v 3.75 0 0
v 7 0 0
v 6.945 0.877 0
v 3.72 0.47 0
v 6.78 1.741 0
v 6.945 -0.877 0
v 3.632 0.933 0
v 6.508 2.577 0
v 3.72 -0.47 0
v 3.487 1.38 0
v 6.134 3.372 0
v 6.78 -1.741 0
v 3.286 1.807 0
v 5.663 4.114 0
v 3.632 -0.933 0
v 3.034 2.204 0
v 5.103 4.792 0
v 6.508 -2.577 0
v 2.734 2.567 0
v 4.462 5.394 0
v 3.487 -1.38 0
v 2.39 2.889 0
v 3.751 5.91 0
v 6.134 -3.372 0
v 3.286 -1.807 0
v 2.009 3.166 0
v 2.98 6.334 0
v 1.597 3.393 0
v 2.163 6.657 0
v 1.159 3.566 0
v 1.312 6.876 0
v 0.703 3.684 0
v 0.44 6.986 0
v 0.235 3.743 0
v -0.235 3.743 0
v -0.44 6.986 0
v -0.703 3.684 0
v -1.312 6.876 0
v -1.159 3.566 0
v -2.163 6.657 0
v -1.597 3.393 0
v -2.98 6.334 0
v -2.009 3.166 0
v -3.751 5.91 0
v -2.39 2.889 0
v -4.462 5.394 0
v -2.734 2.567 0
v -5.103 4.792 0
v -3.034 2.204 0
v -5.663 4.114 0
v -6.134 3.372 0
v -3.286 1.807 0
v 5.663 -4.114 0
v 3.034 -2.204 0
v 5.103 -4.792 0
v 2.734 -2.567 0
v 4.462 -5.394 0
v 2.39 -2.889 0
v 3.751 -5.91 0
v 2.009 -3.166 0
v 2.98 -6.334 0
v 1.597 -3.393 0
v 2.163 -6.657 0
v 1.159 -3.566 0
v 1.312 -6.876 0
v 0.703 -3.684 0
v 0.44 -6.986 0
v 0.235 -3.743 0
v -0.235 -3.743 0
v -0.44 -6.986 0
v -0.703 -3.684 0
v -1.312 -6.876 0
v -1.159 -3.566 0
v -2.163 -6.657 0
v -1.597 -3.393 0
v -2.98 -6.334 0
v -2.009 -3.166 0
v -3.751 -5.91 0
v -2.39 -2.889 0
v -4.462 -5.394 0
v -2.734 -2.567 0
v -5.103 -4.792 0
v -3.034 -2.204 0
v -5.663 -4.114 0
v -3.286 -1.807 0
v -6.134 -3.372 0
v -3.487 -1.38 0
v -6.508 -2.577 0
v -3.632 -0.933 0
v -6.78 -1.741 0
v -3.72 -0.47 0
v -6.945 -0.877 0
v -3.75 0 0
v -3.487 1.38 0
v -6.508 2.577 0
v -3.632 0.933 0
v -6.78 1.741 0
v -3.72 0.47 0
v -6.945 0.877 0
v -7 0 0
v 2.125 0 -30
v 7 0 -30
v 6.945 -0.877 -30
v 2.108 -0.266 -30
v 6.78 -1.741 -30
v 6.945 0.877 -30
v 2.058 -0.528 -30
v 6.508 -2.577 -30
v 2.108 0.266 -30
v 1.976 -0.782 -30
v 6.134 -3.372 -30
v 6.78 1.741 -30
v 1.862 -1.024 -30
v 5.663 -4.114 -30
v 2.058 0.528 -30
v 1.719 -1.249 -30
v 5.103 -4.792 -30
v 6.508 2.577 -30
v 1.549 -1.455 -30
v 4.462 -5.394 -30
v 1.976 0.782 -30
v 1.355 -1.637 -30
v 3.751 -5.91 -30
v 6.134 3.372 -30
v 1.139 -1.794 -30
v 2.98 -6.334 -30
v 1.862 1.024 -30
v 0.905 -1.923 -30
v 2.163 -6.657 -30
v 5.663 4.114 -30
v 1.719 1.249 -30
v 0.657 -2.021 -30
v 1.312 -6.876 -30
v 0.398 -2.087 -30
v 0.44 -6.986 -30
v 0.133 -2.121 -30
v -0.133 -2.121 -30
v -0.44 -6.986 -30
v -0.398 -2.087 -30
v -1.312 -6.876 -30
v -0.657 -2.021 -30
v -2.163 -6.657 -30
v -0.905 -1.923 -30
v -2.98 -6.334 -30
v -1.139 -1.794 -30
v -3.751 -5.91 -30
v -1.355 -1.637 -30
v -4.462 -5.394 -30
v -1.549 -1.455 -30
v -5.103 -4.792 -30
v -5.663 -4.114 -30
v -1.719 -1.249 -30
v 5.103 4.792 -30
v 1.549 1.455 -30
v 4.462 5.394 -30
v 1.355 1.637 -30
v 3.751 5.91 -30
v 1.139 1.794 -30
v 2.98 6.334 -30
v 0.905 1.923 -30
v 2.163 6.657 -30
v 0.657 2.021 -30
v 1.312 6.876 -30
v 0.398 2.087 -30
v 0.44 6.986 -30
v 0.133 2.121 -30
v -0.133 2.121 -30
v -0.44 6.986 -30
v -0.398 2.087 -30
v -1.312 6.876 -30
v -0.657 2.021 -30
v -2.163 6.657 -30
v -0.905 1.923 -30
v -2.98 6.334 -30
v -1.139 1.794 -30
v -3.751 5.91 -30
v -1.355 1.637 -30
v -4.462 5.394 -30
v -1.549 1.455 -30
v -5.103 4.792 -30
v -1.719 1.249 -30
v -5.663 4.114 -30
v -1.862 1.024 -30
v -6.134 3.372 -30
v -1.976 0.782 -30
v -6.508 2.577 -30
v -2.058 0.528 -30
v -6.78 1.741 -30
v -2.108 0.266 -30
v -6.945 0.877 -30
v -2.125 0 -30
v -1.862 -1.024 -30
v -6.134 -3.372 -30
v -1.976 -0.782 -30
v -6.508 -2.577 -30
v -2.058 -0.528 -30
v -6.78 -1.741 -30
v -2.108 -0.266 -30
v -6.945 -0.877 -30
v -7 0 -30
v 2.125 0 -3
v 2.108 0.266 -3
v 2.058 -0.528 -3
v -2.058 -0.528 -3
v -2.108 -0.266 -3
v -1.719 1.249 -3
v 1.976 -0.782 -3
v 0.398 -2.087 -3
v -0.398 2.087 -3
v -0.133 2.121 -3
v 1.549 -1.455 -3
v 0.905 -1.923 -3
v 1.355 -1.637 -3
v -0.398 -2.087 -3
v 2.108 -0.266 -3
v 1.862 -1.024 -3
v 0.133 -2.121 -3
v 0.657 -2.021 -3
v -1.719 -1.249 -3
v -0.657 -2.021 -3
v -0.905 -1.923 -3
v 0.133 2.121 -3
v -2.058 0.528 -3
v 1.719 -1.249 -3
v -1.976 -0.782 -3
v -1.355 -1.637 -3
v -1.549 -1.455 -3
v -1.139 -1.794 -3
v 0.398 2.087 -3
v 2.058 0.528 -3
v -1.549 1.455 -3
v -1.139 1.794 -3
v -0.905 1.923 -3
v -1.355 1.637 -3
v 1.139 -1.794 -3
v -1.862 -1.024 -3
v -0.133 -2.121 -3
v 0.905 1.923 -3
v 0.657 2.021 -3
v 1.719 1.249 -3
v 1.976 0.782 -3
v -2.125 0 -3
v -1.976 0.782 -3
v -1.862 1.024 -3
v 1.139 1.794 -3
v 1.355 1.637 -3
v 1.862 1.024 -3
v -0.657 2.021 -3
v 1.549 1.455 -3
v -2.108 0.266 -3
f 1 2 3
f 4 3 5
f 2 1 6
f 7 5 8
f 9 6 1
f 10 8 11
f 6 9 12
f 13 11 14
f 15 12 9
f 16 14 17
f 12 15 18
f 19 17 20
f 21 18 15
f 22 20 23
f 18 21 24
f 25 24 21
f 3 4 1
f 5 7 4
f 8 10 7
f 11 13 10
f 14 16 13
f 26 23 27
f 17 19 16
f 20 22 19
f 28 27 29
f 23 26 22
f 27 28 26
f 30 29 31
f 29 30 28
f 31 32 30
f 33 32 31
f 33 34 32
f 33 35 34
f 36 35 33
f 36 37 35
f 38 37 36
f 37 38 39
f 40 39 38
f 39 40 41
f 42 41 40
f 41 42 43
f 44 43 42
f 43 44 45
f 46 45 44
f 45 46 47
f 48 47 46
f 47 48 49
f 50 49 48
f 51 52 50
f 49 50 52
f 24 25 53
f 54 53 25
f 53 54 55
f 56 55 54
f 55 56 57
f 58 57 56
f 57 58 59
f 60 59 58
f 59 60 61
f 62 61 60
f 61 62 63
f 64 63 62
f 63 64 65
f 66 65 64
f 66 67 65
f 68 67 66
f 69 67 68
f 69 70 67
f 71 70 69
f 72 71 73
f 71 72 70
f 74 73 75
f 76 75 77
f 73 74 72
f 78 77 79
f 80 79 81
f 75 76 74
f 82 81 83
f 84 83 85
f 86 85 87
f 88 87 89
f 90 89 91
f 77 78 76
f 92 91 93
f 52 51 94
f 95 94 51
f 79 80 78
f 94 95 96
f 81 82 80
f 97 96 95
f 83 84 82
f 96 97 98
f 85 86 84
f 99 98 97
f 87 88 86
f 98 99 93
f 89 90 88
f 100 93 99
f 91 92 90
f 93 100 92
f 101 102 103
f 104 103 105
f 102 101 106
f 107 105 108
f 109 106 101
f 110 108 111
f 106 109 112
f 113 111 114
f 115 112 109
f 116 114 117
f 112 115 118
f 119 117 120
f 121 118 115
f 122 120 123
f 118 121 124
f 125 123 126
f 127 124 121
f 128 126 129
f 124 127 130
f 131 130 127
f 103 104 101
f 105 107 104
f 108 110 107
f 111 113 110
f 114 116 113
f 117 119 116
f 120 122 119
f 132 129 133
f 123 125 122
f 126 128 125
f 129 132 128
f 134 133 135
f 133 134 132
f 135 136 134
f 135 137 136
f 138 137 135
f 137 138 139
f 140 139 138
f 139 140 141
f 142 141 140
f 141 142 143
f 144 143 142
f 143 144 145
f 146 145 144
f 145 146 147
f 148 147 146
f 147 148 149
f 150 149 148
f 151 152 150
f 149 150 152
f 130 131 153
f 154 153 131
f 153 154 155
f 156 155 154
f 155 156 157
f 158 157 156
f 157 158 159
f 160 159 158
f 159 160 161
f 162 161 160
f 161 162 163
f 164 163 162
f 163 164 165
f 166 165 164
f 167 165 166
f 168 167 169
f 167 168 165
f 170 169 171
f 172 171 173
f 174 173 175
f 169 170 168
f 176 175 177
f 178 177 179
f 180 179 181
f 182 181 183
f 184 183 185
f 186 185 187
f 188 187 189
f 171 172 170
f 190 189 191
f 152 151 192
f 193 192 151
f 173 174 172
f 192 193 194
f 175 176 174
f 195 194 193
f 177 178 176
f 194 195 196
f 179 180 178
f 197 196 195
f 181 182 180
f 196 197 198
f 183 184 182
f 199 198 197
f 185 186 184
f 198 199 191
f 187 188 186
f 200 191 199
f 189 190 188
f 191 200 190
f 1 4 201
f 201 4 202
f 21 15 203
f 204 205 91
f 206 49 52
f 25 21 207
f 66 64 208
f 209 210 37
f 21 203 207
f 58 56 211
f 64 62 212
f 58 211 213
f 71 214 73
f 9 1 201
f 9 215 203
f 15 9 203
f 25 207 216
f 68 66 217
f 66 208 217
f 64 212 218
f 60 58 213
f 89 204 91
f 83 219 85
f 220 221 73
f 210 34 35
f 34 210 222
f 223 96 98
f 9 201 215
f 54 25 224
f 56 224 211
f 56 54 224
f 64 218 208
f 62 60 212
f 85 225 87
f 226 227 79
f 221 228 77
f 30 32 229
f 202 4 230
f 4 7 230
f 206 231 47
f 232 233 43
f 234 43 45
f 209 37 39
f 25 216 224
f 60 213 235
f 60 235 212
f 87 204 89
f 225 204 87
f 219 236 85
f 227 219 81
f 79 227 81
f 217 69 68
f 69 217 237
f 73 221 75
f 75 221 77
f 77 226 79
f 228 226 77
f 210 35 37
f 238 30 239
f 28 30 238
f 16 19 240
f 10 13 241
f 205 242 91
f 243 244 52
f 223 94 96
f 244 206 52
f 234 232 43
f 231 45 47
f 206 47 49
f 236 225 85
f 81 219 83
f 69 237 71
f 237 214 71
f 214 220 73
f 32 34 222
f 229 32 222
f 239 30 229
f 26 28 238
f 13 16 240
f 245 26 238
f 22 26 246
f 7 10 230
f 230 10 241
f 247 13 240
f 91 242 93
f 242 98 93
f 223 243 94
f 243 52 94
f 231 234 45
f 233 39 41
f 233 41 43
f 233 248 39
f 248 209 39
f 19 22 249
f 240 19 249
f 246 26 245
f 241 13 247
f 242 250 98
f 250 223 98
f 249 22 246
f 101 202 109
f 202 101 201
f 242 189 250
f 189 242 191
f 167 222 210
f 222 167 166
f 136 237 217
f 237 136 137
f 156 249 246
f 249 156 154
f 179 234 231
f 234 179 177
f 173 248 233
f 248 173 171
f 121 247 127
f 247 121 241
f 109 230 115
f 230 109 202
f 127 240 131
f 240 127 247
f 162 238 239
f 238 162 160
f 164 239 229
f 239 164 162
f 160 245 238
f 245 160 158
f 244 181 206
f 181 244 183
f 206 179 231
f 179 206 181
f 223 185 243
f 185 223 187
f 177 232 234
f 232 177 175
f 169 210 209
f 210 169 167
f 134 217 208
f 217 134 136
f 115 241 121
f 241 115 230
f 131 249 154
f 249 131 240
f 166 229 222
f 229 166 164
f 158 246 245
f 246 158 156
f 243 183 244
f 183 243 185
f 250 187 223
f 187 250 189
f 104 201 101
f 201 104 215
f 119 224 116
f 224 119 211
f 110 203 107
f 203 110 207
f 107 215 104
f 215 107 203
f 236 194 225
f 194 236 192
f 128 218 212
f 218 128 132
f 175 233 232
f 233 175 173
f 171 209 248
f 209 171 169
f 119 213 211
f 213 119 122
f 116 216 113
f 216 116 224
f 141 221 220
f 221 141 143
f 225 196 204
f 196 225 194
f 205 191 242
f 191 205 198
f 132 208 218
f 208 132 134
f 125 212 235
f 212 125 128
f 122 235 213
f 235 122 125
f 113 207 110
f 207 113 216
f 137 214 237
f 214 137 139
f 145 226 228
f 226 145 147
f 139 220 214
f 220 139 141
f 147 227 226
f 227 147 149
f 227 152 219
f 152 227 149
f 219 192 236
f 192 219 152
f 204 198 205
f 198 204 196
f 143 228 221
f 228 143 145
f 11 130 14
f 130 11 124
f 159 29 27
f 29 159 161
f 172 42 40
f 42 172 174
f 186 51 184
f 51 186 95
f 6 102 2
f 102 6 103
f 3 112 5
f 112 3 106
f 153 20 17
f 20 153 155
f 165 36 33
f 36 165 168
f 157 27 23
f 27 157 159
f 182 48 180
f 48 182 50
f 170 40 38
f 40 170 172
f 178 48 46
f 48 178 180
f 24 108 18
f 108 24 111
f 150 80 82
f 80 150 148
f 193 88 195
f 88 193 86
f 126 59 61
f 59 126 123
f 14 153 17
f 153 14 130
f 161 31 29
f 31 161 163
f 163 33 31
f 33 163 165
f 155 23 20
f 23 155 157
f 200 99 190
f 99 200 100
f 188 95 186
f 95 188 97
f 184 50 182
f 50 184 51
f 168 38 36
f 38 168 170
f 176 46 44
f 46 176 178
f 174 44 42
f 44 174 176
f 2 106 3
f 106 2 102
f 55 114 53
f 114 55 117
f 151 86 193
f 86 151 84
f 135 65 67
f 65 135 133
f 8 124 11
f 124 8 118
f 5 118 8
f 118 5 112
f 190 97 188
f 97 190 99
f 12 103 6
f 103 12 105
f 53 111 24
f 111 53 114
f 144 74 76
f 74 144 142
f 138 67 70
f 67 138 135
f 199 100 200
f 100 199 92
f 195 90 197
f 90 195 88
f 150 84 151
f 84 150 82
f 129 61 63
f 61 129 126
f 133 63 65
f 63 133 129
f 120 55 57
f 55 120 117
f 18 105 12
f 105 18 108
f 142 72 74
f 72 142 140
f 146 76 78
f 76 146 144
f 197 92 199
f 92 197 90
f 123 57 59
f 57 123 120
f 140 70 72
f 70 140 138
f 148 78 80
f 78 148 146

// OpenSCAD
$fn = 50;


difference() {
	union() {
		translate(v = [0, 0, -30.0000000000]) {
			cylinder(h = 30, r = 7.0000000000);
		}
		cylinder(h = 0, r = 17.0000000000);
	}
	union() {
		translate(v = [0, 0, 0]) {
			rotate(a = [0, 0, 0]) {
				difference() {
					union() {
						#translate(v = [0, 0, -30.0000000000]) {
							cylinder(h = 30, r = 2.0000000000);
						}
						#translate(v = [0, 0, -3]) {
							cylinder(h = 3, r = 7.0000000000, r1 = 2.1250000000, r2 = 3.7500000000);
						}
						#translate(v = [0, 0, -30.0000000000]) {
							cylinder(h = 30, r = 2.1250000000);
						}
						#translate(v = [0, 0, -30.0000000000]) {
							cylinder(h = 30, r = 2.0000000000);
						}
					}
					union();
				}
			}
		}
	}
}
